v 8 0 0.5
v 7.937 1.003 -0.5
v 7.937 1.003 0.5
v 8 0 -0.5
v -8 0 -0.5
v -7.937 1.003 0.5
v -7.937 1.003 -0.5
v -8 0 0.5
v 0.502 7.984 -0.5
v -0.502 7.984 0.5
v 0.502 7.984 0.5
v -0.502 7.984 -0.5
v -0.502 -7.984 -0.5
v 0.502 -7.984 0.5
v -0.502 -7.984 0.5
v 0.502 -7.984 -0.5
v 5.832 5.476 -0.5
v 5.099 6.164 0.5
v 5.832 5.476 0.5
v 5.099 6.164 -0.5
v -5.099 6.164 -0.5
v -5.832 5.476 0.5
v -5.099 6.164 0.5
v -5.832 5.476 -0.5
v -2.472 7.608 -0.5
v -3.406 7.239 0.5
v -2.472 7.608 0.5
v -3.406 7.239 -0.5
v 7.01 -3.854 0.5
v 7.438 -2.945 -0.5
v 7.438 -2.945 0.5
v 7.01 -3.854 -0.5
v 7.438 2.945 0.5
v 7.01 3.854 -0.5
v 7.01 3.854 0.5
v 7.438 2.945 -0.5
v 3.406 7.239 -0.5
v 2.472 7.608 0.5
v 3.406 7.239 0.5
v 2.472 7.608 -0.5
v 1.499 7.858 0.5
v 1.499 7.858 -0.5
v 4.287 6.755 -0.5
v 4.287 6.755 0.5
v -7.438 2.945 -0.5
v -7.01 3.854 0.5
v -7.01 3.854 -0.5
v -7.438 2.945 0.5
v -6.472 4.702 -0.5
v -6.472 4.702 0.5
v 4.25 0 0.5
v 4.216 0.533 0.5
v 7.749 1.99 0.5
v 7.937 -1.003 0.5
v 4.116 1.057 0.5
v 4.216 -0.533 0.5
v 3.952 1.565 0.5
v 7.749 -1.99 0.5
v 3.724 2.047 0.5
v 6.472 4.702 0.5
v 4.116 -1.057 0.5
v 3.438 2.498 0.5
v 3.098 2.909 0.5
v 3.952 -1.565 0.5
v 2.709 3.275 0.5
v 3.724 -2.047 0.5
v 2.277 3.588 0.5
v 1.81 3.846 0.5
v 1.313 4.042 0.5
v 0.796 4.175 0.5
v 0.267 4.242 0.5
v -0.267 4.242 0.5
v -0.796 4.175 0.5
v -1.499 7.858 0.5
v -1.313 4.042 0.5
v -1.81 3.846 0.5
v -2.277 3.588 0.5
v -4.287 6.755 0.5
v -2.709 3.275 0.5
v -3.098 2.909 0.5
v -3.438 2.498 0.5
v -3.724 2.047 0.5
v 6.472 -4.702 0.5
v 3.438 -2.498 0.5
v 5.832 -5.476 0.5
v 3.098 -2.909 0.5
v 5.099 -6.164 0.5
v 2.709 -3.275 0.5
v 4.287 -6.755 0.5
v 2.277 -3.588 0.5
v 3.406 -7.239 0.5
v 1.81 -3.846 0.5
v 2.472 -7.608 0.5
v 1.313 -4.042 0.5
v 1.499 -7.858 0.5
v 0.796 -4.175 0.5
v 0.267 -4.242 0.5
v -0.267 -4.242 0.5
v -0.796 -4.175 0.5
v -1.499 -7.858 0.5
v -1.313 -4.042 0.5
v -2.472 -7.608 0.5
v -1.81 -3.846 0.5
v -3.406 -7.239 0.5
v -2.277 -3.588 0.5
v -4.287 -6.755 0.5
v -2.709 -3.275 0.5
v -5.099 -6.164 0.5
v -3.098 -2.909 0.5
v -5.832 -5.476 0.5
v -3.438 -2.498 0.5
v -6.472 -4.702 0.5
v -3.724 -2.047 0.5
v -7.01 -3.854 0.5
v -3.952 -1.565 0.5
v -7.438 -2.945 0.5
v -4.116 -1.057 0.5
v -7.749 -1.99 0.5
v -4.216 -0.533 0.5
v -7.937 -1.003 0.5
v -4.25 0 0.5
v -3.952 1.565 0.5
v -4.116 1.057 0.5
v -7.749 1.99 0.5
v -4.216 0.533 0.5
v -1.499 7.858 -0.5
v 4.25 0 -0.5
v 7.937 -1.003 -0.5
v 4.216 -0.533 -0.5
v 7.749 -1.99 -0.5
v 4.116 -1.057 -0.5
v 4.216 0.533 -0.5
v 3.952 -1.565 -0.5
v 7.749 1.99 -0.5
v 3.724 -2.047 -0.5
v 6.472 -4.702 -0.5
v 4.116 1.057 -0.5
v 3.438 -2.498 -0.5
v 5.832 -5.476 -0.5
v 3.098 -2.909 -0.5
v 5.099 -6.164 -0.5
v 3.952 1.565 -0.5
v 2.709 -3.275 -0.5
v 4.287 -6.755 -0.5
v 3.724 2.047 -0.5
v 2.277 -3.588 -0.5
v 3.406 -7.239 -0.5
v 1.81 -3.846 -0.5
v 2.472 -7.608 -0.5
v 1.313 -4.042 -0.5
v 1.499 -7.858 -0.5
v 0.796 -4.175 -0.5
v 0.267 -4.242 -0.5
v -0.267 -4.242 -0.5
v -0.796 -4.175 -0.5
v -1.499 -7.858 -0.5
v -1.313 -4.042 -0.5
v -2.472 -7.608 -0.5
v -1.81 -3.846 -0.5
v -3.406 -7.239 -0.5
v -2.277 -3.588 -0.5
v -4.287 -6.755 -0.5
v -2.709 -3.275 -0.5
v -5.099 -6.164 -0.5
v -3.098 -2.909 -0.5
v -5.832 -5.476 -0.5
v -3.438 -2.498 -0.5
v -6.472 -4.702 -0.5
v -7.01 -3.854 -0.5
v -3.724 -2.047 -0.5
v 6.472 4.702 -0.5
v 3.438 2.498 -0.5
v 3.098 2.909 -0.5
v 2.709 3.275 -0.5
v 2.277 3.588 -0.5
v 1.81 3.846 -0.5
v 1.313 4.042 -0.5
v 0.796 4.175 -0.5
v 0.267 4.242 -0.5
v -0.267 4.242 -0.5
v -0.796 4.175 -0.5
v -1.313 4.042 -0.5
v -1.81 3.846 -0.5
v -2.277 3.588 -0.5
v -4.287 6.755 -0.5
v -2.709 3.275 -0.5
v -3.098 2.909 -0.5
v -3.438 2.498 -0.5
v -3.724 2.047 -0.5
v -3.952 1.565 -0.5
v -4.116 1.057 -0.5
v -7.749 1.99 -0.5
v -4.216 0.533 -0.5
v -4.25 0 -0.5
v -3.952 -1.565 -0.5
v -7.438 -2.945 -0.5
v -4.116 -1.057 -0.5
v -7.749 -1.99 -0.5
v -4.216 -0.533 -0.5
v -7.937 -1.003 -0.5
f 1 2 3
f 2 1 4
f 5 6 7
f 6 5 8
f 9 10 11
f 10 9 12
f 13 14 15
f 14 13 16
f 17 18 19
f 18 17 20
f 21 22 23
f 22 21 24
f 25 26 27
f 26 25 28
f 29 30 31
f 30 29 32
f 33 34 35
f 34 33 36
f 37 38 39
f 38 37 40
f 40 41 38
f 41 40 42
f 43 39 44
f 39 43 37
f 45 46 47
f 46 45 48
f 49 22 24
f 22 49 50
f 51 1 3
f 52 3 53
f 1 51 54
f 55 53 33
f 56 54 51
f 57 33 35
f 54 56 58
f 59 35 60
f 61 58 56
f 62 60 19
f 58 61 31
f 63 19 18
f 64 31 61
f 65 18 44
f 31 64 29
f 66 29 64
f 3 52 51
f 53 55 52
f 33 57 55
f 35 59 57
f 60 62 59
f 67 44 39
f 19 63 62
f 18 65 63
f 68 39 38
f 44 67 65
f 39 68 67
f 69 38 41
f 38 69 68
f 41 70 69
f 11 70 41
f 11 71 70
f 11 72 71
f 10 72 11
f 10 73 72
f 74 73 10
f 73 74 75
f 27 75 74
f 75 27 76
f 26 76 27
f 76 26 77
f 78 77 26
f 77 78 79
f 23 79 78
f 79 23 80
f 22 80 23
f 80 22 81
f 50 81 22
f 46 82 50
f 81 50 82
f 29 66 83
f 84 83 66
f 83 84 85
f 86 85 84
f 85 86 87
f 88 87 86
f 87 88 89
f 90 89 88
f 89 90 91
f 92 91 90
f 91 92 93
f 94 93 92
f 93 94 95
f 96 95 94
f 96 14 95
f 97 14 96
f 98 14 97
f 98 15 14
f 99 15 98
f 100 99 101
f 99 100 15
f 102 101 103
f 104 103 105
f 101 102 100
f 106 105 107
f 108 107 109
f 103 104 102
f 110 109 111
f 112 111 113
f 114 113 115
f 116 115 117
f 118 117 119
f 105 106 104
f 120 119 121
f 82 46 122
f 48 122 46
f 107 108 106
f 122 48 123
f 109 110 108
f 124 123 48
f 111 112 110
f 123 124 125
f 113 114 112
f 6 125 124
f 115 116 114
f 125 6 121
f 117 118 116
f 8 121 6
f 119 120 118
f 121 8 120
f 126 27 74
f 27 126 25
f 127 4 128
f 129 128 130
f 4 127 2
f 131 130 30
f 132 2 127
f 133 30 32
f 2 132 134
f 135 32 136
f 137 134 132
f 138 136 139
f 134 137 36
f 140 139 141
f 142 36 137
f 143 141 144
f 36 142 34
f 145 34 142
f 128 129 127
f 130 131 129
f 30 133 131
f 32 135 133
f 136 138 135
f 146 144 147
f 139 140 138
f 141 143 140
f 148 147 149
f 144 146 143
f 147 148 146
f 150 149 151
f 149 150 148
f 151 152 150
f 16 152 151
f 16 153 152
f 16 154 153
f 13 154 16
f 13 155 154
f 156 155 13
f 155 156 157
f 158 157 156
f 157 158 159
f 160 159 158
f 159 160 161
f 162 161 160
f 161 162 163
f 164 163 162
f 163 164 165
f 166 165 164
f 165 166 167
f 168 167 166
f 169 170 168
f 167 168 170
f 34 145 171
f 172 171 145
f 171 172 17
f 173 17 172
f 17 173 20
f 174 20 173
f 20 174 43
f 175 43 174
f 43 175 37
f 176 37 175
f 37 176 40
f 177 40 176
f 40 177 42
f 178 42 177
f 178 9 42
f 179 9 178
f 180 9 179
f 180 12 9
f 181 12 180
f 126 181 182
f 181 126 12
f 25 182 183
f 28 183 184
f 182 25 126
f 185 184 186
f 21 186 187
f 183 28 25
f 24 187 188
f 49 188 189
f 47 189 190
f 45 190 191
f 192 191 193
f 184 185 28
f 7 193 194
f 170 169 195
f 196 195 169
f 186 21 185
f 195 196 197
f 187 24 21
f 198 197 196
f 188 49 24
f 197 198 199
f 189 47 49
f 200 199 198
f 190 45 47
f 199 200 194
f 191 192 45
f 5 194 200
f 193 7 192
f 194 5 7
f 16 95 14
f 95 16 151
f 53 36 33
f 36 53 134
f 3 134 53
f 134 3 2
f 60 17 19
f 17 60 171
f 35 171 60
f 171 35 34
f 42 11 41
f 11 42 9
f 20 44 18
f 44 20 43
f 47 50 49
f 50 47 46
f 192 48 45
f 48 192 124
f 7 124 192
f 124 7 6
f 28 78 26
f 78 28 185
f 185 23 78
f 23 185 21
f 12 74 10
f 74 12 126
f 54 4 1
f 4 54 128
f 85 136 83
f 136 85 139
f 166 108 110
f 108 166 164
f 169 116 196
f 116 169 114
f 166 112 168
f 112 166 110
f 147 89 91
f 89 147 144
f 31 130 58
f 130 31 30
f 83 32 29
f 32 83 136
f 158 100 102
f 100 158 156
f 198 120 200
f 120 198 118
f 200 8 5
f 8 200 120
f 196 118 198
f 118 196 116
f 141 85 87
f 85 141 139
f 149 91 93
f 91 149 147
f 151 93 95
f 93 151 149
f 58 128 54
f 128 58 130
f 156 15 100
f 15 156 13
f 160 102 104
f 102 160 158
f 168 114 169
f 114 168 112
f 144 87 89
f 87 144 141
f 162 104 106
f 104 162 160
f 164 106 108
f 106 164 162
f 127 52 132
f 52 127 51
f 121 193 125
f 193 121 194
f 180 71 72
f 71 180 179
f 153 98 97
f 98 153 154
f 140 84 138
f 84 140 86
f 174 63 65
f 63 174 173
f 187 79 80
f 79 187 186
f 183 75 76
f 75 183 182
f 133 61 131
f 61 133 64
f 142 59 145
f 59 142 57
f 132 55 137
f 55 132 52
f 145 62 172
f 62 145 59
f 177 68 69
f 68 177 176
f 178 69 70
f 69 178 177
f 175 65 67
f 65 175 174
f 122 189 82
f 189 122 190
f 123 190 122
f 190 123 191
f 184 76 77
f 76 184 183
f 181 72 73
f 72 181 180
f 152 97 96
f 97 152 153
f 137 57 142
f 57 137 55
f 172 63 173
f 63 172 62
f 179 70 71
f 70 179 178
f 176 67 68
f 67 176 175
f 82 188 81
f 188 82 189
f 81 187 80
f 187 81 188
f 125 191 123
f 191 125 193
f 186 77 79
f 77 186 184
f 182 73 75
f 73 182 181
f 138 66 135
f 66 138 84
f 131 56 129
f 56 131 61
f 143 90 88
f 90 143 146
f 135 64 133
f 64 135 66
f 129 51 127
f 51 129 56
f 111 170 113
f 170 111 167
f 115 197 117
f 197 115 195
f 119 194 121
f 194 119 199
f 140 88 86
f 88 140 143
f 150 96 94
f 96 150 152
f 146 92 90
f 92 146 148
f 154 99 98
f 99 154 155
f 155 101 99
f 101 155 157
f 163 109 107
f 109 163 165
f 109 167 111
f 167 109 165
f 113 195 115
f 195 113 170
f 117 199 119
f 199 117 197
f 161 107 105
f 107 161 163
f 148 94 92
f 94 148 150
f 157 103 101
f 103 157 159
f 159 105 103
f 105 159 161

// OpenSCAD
$fn = 50;


difference() {
	union() {
		translate(v = [0, 0, -0.5000000000]) {
			cylinder(h = 1, r = 8.0000000000);
		}
	}
	union() {
		translate(v = [0, 0, -100.0000000000]) {
			cylinder(h = 200, r = 4.2500000000);
		}
	}
}
